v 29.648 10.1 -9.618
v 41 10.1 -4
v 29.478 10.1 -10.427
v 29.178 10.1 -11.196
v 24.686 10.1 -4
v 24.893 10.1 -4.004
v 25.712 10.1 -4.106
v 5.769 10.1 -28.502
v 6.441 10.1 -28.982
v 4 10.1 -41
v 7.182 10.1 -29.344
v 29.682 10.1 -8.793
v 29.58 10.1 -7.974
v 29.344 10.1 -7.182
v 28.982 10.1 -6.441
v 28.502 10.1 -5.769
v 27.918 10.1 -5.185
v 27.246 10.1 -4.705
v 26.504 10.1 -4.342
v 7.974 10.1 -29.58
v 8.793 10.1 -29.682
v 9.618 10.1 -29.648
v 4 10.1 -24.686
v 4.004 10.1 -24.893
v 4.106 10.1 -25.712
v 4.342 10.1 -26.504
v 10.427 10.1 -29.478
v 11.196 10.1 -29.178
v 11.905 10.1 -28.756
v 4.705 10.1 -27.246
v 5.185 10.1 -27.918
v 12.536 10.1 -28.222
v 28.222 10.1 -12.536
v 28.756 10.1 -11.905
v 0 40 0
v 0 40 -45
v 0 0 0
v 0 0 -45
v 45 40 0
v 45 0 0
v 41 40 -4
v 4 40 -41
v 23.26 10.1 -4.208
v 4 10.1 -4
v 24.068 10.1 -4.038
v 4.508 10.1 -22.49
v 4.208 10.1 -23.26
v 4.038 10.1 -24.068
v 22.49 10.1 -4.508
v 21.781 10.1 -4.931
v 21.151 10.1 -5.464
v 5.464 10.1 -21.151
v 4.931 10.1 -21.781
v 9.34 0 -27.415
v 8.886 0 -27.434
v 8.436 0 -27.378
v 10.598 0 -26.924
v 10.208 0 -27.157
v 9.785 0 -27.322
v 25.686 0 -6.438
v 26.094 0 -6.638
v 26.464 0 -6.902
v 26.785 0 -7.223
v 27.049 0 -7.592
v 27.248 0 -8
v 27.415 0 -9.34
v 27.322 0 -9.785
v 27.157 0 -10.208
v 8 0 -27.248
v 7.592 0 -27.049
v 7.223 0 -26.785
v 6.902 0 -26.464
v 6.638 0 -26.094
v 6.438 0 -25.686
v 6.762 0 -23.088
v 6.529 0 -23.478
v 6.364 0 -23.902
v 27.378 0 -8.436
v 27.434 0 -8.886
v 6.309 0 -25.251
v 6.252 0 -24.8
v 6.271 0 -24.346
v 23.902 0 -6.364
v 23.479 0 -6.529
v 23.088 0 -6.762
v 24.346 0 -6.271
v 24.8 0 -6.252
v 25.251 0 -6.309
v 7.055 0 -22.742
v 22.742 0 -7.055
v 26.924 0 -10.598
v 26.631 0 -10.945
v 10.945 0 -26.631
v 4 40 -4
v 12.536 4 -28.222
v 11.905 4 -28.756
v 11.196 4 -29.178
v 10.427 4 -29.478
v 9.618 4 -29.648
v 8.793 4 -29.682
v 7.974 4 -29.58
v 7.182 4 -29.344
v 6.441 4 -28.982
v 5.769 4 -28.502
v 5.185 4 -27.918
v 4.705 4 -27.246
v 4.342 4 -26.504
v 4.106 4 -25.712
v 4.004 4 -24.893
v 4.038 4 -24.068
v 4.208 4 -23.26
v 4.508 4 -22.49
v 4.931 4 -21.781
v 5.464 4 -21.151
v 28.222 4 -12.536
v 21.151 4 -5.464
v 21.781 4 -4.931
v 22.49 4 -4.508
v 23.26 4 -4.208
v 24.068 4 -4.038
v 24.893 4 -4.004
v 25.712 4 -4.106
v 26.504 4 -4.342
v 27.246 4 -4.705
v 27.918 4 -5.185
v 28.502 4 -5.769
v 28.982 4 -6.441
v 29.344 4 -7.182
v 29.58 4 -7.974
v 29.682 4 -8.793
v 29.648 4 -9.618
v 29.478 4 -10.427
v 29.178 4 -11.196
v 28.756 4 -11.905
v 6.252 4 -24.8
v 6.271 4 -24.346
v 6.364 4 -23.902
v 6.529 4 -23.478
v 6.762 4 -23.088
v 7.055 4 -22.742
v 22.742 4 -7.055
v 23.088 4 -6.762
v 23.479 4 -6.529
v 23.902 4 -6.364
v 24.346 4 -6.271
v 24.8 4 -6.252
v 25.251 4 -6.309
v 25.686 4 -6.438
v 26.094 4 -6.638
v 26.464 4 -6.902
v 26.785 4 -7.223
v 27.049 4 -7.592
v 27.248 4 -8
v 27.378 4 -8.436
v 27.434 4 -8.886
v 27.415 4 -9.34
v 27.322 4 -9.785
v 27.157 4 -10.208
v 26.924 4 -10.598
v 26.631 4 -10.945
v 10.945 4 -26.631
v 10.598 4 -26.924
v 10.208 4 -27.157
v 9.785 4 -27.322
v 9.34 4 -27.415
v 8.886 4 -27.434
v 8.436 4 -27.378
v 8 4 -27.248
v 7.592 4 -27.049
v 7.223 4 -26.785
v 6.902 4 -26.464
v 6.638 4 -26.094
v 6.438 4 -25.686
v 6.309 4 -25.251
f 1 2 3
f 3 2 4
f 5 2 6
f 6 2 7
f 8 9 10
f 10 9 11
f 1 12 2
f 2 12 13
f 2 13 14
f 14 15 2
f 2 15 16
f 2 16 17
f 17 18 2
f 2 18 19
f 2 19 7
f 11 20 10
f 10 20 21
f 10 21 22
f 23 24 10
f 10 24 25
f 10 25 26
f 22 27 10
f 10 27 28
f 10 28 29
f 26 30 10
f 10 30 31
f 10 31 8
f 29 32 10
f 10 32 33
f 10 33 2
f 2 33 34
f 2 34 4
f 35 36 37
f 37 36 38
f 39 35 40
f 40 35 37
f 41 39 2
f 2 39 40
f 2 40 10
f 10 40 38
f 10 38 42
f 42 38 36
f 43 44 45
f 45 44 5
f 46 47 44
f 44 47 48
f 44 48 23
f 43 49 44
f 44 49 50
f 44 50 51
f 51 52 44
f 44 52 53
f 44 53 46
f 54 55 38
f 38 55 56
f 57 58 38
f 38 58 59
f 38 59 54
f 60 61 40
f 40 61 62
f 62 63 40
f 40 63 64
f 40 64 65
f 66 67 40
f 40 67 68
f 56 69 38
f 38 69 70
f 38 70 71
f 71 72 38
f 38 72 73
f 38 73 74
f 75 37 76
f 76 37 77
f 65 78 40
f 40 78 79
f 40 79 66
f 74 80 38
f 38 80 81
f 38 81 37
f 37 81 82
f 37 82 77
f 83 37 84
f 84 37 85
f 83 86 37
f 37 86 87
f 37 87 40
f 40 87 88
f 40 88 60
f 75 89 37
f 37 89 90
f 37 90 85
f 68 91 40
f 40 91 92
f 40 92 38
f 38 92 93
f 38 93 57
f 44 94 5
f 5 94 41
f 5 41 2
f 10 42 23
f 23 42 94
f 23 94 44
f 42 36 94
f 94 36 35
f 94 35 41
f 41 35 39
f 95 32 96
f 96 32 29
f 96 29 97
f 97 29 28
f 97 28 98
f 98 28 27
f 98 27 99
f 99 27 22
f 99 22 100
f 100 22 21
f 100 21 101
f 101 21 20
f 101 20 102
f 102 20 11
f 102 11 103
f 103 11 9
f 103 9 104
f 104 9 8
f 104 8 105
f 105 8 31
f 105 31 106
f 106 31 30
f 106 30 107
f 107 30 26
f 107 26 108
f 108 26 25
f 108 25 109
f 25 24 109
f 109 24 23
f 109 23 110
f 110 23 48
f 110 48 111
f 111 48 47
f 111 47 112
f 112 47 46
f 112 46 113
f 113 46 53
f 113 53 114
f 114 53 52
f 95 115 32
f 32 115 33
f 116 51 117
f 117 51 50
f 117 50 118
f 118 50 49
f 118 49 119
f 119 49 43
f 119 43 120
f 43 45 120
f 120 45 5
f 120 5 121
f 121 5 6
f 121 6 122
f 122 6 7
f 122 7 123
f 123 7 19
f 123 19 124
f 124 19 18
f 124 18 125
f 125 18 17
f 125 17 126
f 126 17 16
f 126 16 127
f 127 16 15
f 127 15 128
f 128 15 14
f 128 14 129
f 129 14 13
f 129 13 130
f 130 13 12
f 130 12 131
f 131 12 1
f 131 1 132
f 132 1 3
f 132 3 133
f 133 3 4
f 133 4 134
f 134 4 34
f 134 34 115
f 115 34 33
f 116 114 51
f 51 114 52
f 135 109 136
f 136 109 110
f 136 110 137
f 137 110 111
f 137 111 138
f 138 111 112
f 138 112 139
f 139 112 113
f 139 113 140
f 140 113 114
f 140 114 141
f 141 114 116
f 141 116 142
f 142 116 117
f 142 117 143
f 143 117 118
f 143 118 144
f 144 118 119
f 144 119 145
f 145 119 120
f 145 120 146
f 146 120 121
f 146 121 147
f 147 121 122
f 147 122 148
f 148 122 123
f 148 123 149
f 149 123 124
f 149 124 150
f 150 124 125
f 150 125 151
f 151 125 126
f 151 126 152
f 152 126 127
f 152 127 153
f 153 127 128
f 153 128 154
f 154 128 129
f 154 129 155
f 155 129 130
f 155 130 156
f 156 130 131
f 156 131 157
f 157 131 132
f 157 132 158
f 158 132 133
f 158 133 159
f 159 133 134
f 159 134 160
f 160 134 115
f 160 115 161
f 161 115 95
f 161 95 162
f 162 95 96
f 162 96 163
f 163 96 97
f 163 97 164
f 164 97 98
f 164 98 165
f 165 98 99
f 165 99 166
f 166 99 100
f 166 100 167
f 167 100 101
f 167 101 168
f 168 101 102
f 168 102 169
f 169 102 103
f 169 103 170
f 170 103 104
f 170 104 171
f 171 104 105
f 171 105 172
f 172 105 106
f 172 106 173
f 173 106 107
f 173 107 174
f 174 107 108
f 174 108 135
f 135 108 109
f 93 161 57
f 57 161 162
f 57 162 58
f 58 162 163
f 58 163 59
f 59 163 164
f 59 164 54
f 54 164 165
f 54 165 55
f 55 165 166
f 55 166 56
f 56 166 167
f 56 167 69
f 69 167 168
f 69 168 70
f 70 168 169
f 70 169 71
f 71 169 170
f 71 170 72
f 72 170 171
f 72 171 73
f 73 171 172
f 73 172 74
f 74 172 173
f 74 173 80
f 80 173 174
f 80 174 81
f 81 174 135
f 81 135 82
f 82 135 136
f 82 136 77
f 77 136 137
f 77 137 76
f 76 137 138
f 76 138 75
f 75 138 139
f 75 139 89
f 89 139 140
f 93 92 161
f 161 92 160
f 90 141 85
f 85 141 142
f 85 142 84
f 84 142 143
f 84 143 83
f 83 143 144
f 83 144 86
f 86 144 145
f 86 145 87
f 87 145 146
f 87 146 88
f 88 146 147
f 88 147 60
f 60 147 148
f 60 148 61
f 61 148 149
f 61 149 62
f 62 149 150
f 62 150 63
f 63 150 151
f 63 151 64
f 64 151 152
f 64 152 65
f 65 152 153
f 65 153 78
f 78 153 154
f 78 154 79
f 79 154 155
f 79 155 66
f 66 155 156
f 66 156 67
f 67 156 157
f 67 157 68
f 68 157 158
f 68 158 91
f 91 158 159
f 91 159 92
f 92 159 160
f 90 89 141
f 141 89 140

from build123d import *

# Parameters (mm, degrees)
BOSS_EXTRUDE1_DEPTH = 10.1
BOSS_EXTRUDE2_DEPTH = 29.9
CUT_EXTRUDE1_DEPTH  = 6.1
CUT_EXTRUDE2_DEPTH  = 71.313654435


with BuildPart() as part:
    # Sketch1 → Boss-Extrude1 (new body)
    with BuildSketch(Plane(origin=(0, 0, 0), x_dir=(1, 0, 0), z_dir=(0, 1, 0))):
        Polygon((0, 0), (45, 0), (0, 45), align=None)
    extrude(amount=BOSS_EXTRUDE1_DEPTH)

    # Sketch2 → Boss-Extrude2 (add)
    with BuildSketch(Plane(origin=(0, 10.1, 0), x_dir=(1, 0, 0), z_dir=(0, 1, 0))):
        Polygon((0, 0), (45, 0), (41, 4), (4, 4), (4, 41), (0, 45), align=None)
    extrude(amount=BOSS_EXTRUDE2_DEPTH)

    # Sketch3 → Cut-Extrude1 (cut)
    with BuildSketch(Plane(origin=(0, 10.1, 0), x_dir=(1, 0, 0), z_dir=(0, 1, 0))):
        with BuildLine():
            Line((12.535533906, 28.221825407), (28.221825407, 12.535533906))
            ThreePointArc((28.221825407, 12.535533906), (28.221825407, 5.464466094), (21.150757595, 5.464466094))
            Line((21.150757595, 5.464466094), (5.464466094, 21.150757595))
            ThreePointArc((5.464466094, 21.150757595), (5.464466094, 28.221825407), (12.535533906, 28.221825407))
        make_face()
    extrude(amount=-CUT_EXTRUDE1_DEPTH, mode=Mode.SUBTRACT)

    # Sketch5 → Cut-Extrude2 (cut, through all)
    with BuildSketch(Plane(origin=(0, 10.1, 0), x_dir=(1, 0, 0), z_dir=(0, 1, 0))):
        with BuildLine():
            Line((10.944543648, 26.630835149), (26.630835149, 10.944543648))
            ThreePointArc((26.630835149, 10.944543648), (26.630835149, 7.055456352), (22.741747853, 7.055456352))
            Line((22.741747853, 7.055456352), (7.055456352, 22.741747853))
            ThreePointArc((7.055456352, 22.741747853), (7.055456352, 26.630835149), (10.944543648, 26.630835149))
        make_face()
    extrude(amount=-CUT_EXTRUDE2_DEPTH, mode=Mode.SUBTRACT)


solid = part.part
